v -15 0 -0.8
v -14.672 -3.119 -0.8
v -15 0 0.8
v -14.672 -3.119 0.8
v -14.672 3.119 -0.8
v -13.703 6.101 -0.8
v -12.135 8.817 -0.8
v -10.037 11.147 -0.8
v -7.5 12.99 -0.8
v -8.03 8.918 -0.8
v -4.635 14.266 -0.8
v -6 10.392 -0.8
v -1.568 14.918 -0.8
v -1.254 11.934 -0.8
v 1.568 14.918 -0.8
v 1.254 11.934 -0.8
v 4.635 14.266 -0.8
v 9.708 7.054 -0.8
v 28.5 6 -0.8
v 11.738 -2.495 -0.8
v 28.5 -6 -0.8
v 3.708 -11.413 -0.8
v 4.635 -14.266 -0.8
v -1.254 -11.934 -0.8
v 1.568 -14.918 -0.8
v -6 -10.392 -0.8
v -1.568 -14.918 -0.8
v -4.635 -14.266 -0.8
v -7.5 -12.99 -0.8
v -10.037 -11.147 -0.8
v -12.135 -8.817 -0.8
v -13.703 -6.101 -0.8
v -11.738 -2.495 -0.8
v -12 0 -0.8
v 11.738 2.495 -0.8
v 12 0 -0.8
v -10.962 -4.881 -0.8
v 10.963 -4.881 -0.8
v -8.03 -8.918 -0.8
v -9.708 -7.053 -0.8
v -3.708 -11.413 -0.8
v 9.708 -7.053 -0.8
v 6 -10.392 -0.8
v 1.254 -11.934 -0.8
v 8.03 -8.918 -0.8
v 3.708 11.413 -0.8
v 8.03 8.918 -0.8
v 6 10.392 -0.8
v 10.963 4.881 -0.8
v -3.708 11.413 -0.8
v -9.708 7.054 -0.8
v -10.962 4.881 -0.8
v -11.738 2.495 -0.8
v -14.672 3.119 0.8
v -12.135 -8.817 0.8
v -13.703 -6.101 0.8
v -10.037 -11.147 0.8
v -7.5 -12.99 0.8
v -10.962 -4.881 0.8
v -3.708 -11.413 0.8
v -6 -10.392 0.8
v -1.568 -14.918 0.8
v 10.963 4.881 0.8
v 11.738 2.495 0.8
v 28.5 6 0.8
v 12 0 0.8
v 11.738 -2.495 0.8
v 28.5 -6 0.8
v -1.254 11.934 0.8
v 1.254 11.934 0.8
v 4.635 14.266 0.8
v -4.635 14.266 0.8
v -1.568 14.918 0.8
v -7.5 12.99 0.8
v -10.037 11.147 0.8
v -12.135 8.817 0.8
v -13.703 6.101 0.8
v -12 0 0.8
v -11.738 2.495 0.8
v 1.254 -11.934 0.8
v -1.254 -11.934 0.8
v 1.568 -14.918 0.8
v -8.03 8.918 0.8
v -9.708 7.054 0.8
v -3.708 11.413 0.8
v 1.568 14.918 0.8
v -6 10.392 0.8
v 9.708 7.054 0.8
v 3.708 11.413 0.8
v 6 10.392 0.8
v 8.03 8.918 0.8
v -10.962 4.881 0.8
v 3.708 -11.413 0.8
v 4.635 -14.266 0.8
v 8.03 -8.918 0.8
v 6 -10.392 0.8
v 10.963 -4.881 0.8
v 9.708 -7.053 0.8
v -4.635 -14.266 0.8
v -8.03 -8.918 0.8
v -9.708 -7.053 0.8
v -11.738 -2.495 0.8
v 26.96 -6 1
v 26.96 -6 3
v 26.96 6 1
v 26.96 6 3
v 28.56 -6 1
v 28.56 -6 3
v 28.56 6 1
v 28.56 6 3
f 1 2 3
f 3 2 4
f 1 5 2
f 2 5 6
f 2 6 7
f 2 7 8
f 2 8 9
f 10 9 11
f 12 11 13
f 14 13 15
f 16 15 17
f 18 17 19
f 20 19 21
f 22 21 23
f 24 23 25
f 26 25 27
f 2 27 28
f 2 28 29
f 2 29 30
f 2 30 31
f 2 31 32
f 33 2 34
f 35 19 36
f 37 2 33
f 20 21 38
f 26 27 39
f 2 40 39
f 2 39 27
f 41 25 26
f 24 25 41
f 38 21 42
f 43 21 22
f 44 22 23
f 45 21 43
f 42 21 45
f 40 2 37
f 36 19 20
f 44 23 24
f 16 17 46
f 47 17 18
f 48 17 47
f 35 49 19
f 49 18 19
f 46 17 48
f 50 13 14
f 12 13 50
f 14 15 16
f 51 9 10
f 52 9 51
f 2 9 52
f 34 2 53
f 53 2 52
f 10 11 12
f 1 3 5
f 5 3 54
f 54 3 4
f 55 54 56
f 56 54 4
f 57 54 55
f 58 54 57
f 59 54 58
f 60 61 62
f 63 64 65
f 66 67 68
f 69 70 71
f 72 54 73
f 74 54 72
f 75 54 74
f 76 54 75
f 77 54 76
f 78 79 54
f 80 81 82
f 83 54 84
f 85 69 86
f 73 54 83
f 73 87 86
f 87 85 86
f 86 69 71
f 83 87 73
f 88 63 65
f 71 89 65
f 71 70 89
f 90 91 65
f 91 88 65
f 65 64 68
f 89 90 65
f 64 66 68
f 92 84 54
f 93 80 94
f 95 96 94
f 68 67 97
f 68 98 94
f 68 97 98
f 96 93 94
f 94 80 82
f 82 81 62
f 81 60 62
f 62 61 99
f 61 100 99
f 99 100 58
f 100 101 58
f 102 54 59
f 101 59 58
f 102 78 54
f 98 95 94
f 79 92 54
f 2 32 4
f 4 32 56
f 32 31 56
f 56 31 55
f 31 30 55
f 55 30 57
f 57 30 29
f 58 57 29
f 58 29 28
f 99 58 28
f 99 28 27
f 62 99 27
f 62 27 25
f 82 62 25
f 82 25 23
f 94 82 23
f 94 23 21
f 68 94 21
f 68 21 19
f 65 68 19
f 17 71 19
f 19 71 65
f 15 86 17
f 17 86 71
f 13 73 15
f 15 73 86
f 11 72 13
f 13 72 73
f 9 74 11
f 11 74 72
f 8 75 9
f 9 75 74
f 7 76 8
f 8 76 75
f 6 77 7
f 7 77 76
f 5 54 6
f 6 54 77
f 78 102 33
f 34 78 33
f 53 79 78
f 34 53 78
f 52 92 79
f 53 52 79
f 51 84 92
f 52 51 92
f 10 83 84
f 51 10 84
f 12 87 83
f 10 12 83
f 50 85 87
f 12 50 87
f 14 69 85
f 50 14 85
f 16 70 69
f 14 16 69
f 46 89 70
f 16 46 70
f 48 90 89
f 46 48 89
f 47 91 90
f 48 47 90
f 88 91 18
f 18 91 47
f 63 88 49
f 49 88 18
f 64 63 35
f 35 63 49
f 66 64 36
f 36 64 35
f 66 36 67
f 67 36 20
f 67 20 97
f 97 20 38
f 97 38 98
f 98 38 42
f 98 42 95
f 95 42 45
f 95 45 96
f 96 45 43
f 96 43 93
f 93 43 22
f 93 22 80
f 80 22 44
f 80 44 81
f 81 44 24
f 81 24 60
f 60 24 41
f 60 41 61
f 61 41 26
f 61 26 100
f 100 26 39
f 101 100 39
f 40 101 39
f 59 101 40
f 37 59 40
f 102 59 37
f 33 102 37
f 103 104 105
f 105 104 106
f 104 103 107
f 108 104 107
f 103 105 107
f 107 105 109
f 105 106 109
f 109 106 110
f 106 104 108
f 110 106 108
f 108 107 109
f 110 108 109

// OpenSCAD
// cylinder 97mm long, 25.5mm radius
// cylinder 11.5mm radius

module neck_loop(neck_r=12,thickness=1.75) {
	union() {
		difference() {
			linear_extrude(height=thickness,center=true) {
				hull() {
					circle(neck_r+3);
					translate([(neck_r*2+21)/2,0,0])
						square(12,center=true);
				}
			}
			cylinder(r=neck_r,h=3,center=true);
		}
		translate([neck_r+11.5+6-thickness-0.14,0,2])
			cube([thickness,12,2],center=true);
	}
}

neck_loop(12, 1.6);
